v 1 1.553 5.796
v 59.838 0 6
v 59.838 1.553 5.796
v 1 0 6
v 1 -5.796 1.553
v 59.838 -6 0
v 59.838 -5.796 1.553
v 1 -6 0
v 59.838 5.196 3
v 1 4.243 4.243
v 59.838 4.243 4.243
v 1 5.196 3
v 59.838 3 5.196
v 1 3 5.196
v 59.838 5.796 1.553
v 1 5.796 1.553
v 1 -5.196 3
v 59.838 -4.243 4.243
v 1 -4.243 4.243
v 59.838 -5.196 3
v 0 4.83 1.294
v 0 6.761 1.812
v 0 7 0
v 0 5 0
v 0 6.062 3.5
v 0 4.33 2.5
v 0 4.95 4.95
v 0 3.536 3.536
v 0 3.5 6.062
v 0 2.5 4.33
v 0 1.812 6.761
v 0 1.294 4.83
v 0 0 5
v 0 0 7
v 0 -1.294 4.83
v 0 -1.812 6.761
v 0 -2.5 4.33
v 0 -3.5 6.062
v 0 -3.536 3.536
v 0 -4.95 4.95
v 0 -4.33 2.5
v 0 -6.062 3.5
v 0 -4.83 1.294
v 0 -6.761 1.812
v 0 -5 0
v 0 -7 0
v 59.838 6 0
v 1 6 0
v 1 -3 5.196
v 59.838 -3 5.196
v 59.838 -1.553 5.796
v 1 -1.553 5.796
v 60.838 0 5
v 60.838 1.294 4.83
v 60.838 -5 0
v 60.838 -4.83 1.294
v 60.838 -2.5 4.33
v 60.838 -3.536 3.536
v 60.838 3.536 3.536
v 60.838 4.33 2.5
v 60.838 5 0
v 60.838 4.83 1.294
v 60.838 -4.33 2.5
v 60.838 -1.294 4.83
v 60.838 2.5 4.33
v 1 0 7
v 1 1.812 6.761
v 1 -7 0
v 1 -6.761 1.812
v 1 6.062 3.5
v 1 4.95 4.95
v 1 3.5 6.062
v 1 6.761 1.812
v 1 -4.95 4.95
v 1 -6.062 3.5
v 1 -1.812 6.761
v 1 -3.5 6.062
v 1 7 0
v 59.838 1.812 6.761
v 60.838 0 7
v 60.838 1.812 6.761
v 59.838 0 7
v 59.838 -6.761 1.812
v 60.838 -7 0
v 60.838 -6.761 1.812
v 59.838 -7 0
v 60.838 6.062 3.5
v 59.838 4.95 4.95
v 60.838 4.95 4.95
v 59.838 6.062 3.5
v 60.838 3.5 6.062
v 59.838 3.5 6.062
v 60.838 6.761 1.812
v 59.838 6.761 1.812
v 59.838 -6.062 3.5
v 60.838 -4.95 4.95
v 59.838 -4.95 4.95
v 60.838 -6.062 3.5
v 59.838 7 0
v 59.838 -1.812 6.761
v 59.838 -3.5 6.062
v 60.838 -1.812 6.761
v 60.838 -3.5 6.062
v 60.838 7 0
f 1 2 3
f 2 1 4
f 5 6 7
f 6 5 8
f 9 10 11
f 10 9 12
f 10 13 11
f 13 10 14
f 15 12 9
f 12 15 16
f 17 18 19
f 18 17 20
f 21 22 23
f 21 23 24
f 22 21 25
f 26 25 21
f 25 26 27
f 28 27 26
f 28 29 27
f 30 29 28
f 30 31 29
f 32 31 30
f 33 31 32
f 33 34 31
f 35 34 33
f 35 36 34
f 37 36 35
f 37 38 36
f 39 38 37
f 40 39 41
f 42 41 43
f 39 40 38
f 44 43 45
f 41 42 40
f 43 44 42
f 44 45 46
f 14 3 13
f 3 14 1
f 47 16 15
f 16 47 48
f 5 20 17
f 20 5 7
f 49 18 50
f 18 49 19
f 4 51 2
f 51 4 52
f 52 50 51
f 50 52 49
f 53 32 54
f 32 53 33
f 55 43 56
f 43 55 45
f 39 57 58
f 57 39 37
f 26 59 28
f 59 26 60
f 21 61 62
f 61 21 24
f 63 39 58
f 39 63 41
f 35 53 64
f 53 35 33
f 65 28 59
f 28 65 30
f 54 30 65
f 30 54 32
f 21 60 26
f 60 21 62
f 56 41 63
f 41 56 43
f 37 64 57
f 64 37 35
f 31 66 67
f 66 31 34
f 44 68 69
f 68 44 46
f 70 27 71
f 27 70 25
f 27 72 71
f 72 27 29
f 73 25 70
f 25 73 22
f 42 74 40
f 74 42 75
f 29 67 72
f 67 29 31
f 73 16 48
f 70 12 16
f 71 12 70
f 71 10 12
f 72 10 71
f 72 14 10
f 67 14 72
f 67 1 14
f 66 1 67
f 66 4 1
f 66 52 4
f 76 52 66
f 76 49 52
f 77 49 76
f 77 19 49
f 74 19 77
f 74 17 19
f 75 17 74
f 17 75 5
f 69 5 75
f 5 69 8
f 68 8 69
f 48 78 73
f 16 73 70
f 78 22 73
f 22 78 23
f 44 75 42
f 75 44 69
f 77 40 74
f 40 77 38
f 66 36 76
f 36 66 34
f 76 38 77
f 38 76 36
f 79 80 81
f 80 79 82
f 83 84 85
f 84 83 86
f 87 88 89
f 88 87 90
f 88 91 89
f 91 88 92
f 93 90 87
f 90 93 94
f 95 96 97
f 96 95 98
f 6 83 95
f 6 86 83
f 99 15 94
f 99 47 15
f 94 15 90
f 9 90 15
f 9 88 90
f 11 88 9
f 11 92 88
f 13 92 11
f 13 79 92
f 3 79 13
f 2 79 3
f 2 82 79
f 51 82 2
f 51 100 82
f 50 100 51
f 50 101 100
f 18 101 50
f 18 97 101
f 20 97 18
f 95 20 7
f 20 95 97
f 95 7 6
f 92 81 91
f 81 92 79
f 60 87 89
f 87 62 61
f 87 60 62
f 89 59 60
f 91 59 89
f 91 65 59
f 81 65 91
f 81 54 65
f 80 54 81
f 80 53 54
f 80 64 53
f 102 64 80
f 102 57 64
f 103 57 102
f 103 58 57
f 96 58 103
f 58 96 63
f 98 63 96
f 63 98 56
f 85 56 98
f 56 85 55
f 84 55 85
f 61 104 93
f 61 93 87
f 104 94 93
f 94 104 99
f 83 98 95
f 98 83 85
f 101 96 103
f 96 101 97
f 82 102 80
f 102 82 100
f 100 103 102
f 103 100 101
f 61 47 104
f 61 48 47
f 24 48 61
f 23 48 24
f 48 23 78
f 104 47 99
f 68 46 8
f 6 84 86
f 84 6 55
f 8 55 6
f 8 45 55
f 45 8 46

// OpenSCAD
// file: ../build_environments.scad
// build_environments.scad: modules to build level sections
//

module pool(diameter=10.0, wall_height=2.0, step_width=3.0, connections=[])
{
    difference() {
        union() {
        difference() {
            cylinder(h=0.5,r1=diameter+step_width,r2=diameter+step_width,$fn=48);
            translate([0,0,-0.1])
                cylinder(h=0.7,r1=diameter,r2=diameter,$fn=48);
        }
        difference() {
            cylinder(h=wall_height,r1=diameter+step_width+1.0,r2=diameter+step_width+1.0,$fn=48);
            translate([0,0,-0.1])
                cylinder(h=wall_height+0.2,r1=diameter+step_width,r2=diameter+step_width,$fn=48);
        }
        }
    
        for (c = connections)
        {
            rotate([0,90,0]) {
                angle = atan2(c[1],c[0]);
                rotate([-angle,0,0]) {
                    cylinder(h=diameter+5.0,r1=c[2],r2=c[2],$fn=48);
                }
            }
        }
    }
}

module straight(length=10.0, width=2.0, dy1=0.0, dy2=0.0, dz=0.0)
{
    dims = [0, 0, 0, 0, 0, (dz/length)];
    matrix = [
        [ 1, dims[0], dims[1], 0 ],
        [ dims[2], 1, dims[4], 0 ],
        [ dims[5], dims[3], 1, 0 ],
        [ 0, 0, 0, 1 ]
    ];
    multmatrix(matrix)
    difference() {
        translate([dy1,0,0])
        union() {
            rotate([0,90,0]) {
                difference() {
                    cylinder(h=(length-dy1-dy2),r1=width+1.0,r2=width+1.0,$fn=24);
                    translate([0,0,-0.1])
                        cylinder(h=(length-dy1-dy2+0.2),r1=width,r2=width,$fn=24);
                }
                difference() {
                    cylinder(h=1.0,r1=width+2.0,r2=width+2.0,$fn=24);
                    translate([0,0,-0.1])
                        cylinder(h=1.2,r1=width,r2=width,$fn=24);
                }
                translate([0,0,(length-dy1-dy2)-1.0]) {
                    difference() {
                        cylinder(h=1.0,r1=width+2.0,r2=width+2.0,$fn=24);
                        translate([0,0,-0.1])
                            cylinder(h=1.2,r1=width,r2=width,$fn=24);
                    }
                }
            }
        }
        translate([0,0,-(2*width+4.0)/2])
            cube([3*length,3*length,2*width+4.0],center=true);
    }
}

module curve(p0=[0,0], center=[0,0], dir=1, angle=0.0, width=2.0)
{
    radius = sqrt((p0[0]-center[0])*(p0[0]-center[0]) + (p0[1]-center[1])*(p0[1]-center[1]));
    if (dir == 0) {
        difference() {
            rotate([0,0,-90])
            difference() {
                rotate_extrude(angle = angle, convexity = 10, $fn=32)
                    translate([radius, 0, 0])
                        circle(r = width+1.0,$fn=24);
                rotate([0,0,-1.0])
                    rotate_extrude(angle = angle+2.0, convexity = 10, $fn=32)
                        translate([radius, 0, 0])
                            circle(r = width,$fn=24);
            }
            translate([0,0,-(2*width+4.0)/2])
                cube([5*radius,5*radius,2*width+4.0],center=true);
        }
    }
    else {
        difference() {
            rotate([0,0,90])
            difference() {
                rotate_extrude(angle = -angle, convexity = 10, $fn=32)
                    translate([radius, 0, 0])
                        circle(r = width+1.0,$fn=24);
                rotate([0,0,1.0])
                    rotate_extrude(angle = -angle-2.0, convexity = 10, $fn=32)
                        translate([radius, 0, 0])
                            circle(r = width,$fn=24);
            }
            translate([0,0,-(2*width+4.0)/2])
                cube([5*radius,5*radius,2*width+4.0],center=true);
        }
    }

}

// test pool
//pool(diameter=12.0000, wall_height=3.0000, step_width=3.0000, connections=[[0.0000,-26.0000,2.0000], [23.6074,0.0000,2.0000]]);

// test straight, slope
//straight(length=26.0000, width=2.0000, dy1=11.8322, dy2=6.7082, dz=0.0000);
//straight(length=29.1549, width=12.0000, dy1=0.0000, dy2=0.0000, dz=-15.0000);

// test curve
//curve(p0=[23.6074, 0.0000], center=[23.6074, 5.0000], dir=0, angle=60.1011, width=2.0000);
//curve(p0=[33.6426, 12.4219], center=[37.9771, 9.9295], dir=1, angle=120.4627, width=2.0000);
// main file
use <../build_environments.scad>;
straight(length=60.8384, width=5.0000, dy1=0.0000, dy2=0.0000, dz=0.0000);
